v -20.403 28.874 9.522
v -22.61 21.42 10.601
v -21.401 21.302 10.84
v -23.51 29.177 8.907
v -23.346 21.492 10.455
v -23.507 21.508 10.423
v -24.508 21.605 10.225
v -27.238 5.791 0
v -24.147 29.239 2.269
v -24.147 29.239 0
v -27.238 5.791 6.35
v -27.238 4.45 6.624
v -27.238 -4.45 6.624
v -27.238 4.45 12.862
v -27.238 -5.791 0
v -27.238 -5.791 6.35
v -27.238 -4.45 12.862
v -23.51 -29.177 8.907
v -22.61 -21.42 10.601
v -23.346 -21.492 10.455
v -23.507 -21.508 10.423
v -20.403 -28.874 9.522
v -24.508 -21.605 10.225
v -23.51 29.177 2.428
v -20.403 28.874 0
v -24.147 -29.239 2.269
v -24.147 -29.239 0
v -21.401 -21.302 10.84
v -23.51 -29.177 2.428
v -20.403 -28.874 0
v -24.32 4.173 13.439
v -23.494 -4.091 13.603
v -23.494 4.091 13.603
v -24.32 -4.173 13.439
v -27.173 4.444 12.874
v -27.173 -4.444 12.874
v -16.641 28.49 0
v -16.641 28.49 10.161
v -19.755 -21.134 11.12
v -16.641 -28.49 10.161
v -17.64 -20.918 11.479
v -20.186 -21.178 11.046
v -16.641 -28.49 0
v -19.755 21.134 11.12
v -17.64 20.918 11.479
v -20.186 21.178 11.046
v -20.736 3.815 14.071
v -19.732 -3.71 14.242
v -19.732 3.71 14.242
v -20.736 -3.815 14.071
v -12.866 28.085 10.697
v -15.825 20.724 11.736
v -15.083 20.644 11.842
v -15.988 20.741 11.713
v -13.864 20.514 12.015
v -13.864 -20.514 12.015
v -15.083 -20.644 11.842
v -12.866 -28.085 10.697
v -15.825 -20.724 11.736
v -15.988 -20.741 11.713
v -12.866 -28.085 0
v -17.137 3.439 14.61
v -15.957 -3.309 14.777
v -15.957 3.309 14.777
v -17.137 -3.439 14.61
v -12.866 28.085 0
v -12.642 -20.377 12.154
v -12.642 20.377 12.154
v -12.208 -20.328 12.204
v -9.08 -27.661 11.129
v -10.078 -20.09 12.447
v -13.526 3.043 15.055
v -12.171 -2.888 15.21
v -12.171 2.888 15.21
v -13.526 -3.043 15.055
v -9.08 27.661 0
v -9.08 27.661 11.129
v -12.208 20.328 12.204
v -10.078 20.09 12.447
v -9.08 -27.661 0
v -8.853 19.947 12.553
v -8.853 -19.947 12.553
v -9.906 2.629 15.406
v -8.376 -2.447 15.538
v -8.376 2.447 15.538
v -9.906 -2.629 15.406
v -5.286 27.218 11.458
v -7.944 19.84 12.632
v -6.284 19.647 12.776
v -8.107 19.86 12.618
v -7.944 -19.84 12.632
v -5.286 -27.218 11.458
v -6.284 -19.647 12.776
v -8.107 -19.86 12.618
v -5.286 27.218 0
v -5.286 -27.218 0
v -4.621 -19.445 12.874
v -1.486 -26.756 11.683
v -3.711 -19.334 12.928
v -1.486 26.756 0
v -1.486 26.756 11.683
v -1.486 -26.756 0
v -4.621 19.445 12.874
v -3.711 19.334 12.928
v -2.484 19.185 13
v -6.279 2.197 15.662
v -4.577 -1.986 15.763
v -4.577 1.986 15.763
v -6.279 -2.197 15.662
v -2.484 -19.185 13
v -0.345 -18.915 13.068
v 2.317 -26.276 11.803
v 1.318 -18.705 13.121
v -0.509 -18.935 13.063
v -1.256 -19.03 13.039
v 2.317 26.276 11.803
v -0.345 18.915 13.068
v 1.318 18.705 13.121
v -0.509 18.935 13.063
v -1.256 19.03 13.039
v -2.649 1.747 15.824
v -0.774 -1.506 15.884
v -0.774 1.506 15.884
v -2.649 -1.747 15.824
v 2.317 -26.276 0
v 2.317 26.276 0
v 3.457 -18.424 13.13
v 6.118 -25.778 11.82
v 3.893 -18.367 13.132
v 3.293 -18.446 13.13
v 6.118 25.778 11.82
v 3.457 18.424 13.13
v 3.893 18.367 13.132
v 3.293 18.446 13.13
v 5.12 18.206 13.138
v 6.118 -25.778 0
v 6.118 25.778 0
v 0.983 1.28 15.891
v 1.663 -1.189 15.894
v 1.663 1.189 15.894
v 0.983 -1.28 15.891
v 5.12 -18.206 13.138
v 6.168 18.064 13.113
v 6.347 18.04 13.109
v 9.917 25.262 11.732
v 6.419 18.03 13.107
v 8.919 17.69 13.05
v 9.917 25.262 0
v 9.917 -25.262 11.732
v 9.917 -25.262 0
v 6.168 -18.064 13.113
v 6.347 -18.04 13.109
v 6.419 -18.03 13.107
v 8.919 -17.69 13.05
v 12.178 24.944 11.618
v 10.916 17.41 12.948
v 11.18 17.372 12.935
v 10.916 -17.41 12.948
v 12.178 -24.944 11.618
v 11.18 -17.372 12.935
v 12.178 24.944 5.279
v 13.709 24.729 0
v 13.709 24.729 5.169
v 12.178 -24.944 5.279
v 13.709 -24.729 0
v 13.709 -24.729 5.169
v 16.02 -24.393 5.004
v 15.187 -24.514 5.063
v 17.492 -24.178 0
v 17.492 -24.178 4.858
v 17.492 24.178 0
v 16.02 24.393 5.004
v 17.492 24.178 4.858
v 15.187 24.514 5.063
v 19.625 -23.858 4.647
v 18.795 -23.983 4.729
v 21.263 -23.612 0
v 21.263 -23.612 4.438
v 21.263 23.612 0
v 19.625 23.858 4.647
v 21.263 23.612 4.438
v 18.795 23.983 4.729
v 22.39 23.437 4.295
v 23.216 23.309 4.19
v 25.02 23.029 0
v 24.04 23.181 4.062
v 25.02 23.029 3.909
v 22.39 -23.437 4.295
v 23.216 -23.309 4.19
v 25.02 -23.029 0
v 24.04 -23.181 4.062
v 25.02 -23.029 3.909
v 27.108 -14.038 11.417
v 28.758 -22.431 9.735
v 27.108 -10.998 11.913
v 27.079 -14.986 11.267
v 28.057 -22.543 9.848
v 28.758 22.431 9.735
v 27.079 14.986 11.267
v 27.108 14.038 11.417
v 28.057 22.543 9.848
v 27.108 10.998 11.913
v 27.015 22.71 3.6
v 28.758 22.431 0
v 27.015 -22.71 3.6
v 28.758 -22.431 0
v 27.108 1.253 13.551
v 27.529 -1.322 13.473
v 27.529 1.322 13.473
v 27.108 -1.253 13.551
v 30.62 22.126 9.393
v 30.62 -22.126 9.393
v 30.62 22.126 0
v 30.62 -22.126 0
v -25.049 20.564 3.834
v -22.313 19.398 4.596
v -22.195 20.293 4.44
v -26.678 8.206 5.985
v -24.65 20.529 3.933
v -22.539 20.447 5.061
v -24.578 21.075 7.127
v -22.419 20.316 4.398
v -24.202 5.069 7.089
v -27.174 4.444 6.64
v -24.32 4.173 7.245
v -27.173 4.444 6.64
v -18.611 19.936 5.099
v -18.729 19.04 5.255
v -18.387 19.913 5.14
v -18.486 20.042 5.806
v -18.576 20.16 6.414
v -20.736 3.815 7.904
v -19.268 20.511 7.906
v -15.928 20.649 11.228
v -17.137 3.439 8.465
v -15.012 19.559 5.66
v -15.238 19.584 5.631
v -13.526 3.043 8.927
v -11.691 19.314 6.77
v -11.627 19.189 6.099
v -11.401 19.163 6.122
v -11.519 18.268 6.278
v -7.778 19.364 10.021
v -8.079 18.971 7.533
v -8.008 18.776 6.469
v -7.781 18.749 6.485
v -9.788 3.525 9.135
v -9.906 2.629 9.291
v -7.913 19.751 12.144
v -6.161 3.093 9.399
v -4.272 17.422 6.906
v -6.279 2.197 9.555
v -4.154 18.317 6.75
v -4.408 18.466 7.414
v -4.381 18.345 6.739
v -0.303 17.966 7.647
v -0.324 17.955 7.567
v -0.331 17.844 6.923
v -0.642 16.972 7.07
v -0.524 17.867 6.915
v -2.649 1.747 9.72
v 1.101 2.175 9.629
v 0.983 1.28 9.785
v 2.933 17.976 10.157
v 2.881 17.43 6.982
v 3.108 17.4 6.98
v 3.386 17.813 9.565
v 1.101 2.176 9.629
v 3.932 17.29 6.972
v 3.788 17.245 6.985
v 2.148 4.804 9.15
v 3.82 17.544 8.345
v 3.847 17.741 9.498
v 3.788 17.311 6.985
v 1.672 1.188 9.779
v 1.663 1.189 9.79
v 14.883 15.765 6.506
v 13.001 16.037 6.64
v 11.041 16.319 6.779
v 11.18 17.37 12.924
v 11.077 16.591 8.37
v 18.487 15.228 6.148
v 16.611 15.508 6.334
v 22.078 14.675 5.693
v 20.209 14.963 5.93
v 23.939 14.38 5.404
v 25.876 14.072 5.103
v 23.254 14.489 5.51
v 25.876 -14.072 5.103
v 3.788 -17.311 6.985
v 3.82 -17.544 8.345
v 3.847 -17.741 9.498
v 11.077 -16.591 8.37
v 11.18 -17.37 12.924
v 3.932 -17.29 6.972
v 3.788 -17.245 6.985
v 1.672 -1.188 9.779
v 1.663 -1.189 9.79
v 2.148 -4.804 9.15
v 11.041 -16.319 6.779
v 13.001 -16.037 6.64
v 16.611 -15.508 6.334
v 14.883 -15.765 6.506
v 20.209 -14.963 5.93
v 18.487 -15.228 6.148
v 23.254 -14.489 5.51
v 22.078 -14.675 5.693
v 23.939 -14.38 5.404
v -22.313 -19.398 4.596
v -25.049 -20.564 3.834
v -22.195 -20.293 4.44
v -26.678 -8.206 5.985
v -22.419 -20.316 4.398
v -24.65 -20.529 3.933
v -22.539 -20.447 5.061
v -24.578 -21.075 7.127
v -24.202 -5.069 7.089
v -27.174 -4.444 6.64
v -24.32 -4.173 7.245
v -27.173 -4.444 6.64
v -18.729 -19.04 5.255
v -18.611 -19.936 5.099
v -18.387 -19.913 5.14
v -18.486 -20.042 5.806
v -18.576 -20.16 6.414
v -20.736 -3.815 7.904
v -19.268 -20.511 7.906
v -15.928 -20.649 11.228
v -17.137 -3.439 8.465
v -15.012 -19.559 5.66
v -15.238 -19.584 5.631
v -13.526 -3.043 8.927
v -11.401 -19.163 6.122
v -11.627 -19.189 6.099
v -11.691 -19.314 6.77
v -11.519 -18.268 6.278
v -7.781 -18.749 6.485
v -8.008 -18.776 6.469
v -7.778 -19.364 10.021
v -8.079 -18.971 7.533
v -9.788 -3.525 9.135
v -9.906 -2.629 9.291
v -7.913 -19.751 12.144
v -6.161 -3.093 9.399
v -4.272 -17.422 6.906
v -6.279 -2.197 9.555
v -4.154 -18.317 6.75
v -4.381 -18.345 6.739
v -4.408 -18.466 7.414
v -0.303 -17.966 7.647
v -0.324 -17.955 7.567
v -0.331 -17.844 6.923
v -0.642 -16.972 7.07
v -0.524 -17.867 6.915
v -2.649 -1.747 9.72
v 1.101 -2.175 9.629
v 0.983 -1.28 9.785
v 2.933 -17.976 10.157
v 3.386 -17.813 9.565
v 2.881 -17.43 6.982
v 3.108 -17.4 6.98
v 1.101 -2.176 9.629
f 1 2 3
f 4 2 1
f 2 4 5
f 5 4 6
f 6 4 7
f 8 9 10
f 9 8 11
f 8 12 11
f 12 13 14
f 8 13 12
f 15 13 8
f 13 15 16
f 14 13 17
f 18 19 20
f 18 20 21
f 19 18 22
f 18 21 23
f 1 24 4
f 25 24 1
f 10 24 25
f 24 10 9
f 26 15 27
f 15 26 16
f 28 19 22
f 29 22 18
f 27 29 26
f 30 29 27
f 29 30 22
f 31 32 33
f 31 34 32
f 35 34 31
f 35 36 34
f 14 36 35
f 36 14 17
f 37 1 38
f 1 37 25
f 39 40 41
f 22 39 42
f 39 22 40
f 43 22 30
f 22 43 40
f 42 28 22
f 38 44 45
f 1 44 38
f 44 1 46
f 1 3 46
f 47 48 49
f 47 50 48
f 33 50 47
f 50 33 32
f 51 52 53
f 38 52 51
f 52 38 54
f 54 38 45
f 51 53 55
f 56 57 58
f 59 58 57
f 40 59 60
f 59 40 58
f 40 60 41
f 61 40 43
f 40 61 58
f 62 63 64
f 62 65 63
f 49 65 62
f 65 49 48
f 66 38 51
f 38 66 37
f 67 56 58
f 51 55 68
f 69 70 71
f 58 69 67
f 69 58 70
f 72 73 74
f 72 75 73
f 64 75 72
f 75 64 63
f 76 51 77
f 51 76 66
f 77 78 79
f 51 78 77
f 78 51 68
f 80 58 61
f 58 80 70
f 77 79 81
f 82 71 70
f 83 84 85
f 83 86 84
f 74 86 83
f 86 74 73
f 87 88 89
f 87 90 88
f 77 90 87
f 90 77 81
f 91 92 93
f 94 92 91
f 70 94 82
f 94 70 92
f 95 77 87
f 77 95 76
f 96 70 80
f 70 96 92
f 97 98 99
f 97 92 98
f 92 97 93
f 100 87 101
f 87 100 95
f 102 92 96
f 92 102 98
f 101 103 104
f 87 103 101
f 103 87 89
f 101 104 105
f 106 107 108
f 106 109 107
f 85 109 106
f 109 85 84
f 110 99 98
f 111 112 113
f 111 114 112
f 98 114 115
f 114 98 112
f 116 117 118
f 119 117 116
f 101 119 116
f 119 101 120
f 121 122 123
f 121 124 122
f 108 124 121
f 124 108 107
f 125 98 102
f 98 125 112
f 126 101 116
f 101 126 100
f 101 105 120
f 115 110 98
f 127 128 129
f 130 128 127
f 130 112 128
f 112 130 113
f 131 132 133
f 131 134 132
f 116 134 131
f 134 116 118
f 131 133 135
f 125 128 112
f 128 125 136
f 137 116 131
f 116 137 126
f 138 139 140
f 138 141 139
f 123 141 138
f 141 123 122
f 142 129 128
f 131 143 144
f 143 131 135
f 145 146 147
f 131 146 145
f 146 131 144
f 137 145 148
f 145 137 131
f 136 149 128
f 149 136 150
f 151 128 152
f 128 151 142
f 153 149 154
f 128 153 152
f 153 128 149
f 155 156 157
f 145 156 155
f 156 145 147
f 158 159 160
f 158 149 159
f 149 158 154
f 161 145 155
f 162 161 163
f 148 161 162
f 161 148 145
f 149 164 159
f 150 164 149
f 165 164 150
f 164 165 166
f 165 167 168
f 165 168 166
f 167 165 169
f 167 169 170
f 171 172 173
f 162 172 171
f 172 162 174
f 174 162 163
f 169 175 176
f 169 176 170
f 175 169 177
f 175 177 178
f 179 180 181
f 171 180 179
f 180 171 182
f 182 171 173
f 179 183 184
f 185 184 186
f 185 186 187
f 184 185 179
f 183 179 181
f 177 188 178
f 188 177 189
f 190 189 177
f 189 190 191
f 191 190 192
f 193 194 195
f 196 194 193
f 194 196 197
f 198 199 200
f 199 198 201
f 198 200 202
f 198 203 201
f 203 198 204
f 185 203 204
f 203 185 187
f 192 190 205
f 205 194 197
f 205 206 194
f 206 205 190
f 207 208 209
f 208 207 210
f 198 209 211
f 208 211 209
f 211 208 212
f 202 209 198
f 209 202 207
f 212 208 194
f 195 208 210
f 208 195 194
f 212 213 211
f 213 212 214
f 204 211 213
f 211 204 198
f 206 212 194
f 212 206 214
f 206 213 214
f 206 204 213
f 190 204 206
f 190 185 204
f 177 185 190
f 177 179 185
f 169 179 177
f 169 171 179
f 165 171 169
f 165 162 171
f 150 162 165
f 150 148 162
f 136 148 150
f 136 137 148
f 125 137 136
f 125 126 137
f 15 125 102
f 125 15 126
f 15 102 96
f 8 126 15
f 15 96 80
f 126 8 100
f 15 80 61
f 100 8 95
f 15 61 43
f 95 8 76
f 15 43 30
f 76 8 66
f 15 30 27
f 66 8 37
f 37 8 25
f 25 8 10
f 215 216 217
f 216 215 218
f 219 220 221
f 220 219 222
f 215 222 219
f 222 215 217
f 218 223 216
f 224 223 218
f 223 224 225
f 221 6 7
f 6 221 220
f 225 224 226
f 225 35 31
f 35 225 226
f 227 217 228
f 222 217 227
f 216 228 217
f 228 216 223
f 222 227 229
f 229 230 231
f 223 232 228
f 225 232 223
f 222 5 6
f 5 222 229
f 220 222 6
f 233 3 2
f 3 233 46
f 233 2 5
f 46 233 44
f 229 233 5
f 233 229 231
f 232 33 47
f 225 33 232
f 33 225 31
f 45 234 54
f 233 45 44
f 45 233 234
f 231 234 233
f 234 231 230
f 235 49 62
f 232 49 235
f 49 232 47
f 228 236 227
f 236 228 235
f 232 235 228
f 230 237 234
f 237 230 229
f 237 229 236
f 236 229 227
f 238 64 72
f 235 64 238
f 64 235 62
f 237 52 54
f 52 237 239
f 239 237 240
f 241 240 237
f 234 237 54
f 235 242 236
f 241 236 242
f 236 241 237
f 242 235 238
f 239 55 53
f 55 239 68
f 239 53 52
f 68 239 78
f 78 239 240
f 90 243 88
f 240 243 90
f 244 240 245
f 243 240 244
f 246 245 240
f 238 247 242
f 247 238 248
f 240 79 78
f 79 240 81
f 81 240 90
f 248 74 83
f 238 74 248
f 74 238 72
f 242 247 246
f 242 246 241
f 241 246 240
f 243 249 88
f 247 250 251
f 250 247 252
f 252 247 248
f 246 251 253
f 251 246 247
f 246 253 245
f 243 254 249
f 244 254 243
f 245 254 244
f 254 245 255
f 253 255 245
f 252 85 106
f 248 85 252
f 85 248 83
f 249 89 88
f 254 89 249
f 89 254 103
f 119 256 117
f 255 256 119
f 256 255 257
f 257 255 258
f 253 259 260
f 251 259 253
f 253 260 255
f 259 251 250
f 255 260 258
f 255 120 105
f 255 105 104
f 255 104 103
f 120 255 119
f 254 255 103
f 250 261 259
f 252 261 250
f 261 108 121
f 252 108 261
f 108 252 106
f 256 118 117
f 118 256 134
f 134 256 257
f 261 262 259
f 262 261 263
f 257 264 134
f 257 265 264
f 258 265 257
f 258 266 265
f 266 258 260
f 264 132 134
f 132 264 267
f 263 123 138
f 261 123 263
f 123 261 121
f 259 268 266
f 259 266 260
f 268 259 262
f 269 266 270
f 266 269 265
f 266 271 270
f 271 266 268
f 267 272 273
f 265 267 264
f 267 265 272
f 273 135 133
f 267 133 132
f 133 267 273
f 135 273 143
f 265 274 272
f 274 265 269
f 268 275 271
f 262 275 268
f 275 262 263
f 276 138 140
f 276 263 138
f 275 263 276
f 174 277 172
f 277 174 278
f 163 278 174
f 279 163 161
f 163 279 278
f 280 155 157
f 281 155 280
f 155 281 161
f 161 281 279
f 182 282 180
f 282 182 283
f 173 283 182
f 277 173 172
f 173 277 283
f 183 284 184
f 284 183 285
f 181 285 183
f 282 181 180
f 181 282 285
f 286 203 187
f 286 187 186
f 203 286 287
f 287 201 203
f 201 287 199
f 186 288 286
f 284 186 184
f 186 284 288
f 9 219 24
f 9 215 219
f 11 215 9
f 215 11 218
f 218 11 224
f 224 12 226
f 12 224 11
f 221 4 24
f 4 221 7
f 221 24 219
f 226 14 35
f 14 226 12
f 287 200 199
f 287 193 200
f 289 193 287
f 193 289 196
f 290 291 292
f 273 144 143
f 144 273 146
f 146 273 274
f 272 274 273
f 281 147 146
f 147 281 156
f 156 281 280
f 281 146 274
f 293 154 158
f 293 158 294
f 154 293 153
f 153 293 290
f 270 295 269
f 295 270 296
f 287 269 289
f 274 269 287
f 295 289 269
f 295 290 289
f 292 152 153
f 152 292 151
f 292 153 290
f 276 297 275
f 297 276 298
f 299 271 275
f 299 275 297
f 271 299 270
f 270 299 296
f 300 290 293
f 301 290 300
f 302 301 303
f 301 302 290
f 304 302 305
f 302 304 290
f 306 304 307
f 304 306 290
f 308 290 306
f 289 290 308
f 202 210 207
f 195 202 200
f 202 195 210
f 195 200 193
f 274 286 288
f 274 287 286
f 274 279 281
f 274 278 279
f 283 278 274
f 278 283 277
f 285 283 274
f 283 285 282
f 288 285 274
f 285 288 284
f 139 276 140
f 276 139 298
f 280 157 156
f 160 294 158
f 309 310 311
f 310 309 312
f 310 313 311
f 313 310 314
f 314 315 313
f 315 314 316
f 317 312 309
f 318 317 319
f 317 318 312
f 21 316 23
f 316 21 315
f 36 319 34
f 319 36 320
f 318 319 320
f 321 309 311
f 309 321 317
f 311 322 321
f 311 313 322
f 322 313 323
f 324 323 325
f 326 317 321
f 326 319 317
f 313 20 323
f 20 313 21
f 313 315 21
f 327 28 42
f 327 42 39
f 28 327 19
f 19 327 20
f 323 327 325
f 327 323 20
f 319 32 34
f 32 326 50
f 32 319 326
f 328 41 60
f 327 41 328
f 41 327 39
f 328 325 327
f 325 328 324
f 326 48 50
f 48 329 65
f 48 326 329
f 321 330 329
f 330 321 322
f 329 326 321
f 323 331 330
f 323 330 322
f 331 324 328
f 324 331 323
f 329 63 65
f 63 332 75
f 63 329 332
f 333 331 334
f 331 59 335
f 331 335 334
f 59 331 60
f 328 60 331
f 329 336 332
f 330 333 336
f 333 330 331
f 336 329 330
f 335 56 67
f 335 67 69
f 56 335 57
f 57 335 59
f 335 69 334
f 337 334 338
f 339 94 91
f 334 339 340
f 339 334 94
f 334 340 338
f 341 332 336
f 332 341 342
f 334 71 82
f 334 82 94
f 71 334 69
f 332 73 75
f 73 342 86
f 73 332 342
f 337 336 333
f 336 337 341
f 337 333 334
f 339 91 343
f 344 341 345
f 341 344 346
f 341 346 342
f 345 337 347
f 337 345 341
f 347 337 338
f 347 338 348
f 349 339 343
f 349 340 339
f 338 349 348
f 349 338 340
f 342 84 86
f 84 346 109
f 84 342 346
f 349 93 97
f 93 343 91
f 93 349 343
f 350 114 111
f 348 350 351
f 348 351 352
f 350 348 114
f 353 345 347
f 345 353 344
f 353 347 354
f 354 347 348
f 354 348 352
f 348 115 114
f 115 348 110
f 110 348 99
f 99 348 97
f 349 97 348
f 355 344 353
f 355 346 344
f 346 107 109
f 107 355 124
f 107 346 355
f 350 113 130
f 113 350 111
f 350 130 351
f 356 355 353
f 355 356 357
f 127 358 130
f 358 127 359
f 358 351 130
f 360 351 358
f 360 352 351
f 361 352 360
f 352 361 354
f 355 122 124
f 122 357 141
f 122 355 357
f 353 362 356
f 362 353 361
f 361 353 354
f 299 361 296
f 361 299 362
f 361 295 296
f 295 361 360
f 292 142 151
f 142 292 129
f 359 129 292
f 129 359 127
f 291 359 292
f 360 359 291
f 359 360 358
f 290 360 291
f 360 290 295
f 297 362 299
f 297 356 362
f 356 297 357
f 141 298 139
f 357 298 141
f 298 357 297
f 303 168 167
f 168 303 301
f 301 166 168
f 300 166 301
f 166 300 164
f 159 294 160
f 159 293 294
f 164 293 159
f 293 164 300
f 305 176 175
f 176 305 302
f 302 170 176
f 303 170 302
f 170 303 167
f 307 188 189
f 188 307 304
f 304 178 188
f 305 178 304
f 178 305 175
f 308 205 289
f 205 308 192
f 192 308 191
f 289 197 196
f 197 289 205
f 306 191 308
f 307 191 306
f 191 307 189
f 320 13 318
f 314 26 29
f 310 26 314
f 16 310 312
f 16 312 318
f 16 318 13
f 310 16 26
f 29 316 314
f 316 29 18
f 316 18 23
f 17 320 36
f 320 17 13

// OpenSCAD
// file: panel_mount.scad
// Mount for the two curved 128x64 HUB75 panels of the mask.
//
// One part per panel, the same STL printed twice (the lower half is the upper
// one rotated 180 degrees). Each half is a lightweight curved frame with pockets
// for stacks of disc magnets that match the 12 magnets on the panel back, and an
// opening for the power/data connectors.
//
// Geometry: each panel is bent around its short (y) axis to radius R. The upper
// panel is tilted top-back and the lower one bottom-back about the x axis, so
// they touch at their outer corners and leave an eye slit that is eye_gap wide
// in the middle. Near the outer corners both halves carry a bridge with a flat
// face in the joint plane; glue the two halves together there (optional
// filament dowels) and the angle between them is fixed.
//
// Coordinates (assembly): x = right, y = up, z = forward (away from the face).
// The panel cylinder axis is the y axis; the joint plane between halves is y = 0.
//
// Usage:
//   openscad -o panel_mount_half.stl panel_mount.scad                (print part)
//   openscad -D 'mode="assembly"' -o assembly.png panel_mount.scad   (preview)

mode = "print";            // "print" | "half" | "assembly" | "collision"

// ---- panel ---------------------------------------------------------------
W = 240;                   // panel size along the curved (x) axis
H = 120;                   // panel size along the straight (y) axis
R = 145;                   // bend radius of the panel PCB
standoff = 5;              // PCB to contact face of the panel's magnets (measure!)
eye_gap = 20;              // slit width between the panels at the centre (x = 0)

magnets = [[-113, 53], [-60, 53], [0, 53], [60, 53], [113, 53],
           [-113, 0], [113, 0],
           [-113, -53], [-60, -53], [0, -53], [60, -53], [113, -53]];
conn = [60, 30];           // connector opening (x, y), centred on the panel

// ---- own magnets (stack of 3 discs, 10 x 1.8 mm) ---------------------------
pocket_d = 10.4;           // hole for 10 mm magnets incl. FDM shrink and glue
pocket_depth = 5.2;        // 3 x 1.8 = 5.4 -> magnets stand 0.2 mm proud

// ---- frame ----------------------------------------------------------------
depth = 7;                 // radial thickness of frame and bosses
recess = 1;                // frame front sits this far behind the magnet faces
bar = 16;                  // width of the outer frame bars
ring = 6;                  // wall width around the connector opening
rib = 8;                   // width of the inner ribs
boss_d = 16;               // raised pad around every magnet pocket
bridge_u = 96;             // bridges between the halves span |x| = bridge_u .. W/2
dowel_d = 2.0;             // hole for a piece of 1.75 mm filament
dowel_depth = 8;
dowel_u = 101;

$fa = 1;
$fs = 0.5;

// ---- derived --------------------------------------------------------------
Rc = R - standoff;         // radius of the magnet contact face
rb = Rc - depth;           // back of the frame
rf = Rc - recess;          // front of the frame
phi_max = (W / 2) / R * 180 / PI;
zc = R * cos(phi_max);     // hinge line (outer corners) lies at y = 0, z = zc
theta = asin(eye_gap / 2 / (R - zc));

function a(u) = u / R * 180 / PI;   // arc length on the PCB -> angle

echo(str("tilt per panel = ", theta, " deg, hinge z = ", zc));

// ---- panel-local building blocks -------------------------------------------
// Built with the cylinder axis on Z ("cyl frame"); to_local() maps it to the
// panel-local frame (axis on y, panel centre at (0, 0, R)).
module to_local() multmatrix([[0, 1, 0, 0], [0, 0, 1, 0], [1, 0, 0, 0], [0, 0, 0, 1]]) children();

// Cylindrical box: arc range u0..u1 (measured on the PCB), height v0..v1,
// radius r0..r1.
module cbox(u0, u1, v0, v1, r0, r1)
    rotate([0, 0, a(u0)]) rotate_extrude(angle = a(u1) - a(u0))
        translate([r0, v0]) square([r1 - r0, v1 - v0]);

// Radial cylinder at (u, v) from radius r0 to r1.
module rcyl(u, v, r0, r1, dia)
    rotate([0, 0, a(u)]) translate([r0, 0, v]) rotate([0, 90, 0]) cylinder(h = r1 - r0, d = dia);

module frame_solid() {
    intersection() {
        cbox(-W / 2, W / 2, -H / 2, H / 2, rb - 1, Rc + 1);   // clip to panel outline
        union() {
            // outer frame (all magnets sit on it)
            cbox(-W / 2, W / 2, H / 2 - bar, H / 2, rb, rf);
            cbox(-W / 2, W / 2, -H / 2, -H / 2 + bar, rb, rf);
            cbox(W / 2 - bar, W / 2, -H / 2, H / 2, rb, rf);
            cbox(-W / 2, -W / 2 + bar, -H / 2, H / 2, rb, rf);
            // ring around the connector opening
            cbox(-conn[0] / 2 - ring, conn[0] / 2 + ring, -conn[1] / 2 - ring, conn[1] / 2 + ring, rb, rf);
            // ribs: centre top/bottom, horizontal to the sides, verticals at x = +-60
            cbox(-rib / 2, rib / 2, -H / 2, H / 2, rb, rf);
            cbox(-W / 2, W / 2, -rib / 2, rib / 2, rb, rf);
            for (s = [-1, 1]) cbox(s * 60 - rib / 2, s * 60 + rib / 2, -H / 2, H / 2, rb, rf);
            for (m = magnets) rcyl(m[0], m[1], rb, Rc, boss_d);
        }
    }
}

module frame_cuts() {
    for (m = magnets) rcyl(m[0], m[1], Rc - pocket_depth, Rc + 1, pocket_d);
    cbox(-conn[0] / 2, conn[0] / 2, -conn[1] / 2, conn[1] / 2, rb - 1, Rc + 1);
}

// ---- assembly transforms ---------------------------------------------------
// Upper panel: bottom edge on y = 0, then tilted top-back about the hinge line.
module to_upper()
    translate([0, 0, zc]) rotate([-theta, 0, 0]) translate([0, 0, -zc]) translate([0, H / 2, 0]) children();
module from_upper()
    translate([0, -H / 2, 0]) translate([0, 0, zc]) rotate([theta, 0, 0]) translate([0, 0, -zc]) children();

module end_piece(s)
    to_local() if (s > 0) cbox(bridge_u, W / 2, -H / 2, -H / 2 + bar, rb, rf);
               else       cbox(-W / 2, -bridge_u, -H / 2, -H / 2 + bar, rb, rf);

module bridges()
    for (s = [-1, 1]) hull() {
        to_upper() end_piece(s);
        mirror([0, 1, 0]) to_upper() end_piece(s);
    }

module dowel_holes()
    for (s = [-1, 1]) {
        r = (rb + rf) / 2;
        x0 = s * r * sin(a(dowel_u));
        z0 = zc + (r * cos(a(dowel_u)) - zc) * cos(theta);
        translate([x0, -1, z0]) rotate([-90, 0, 0]) cylinder(h = dowel_depth + 1, d = dowel_d);
    }

// Upper half in assembly coordinates; the lower half is mirror([0, 1, 0]) of it.
module half_global()
    difference() {
        intersection() {
            union() {
                to_upper() to_local() frame_solid();
                bridges();
            }
            translate([-200, 0, -100]) cube([400, 300, 400]);
        }
        to_upper() to_local() frame_cuts();
        dowel_holes();
    }

module panel_ghost()
    to_local() difference() {
        union() {
            cbox(-W / 2, W / 2, -H / 2, H / 2, R, R + 2);
            for (m = magnets) rcyl(m[0], m[1], Rc + 0.01, R, 10);
        }
        cbox(-conn[0] / 2 + 5, conn[0] / 2 - 5, -conn[1] / 2 + 5, conn[1] / 2 - 5, R - 1, R + 3);
    }

if (mode == "print") {
    // top edge of the panel on the bed, eye-slit edge up
    translate([0, 0, H / 2]) rotate([-90, 0, 0]) from_upper() half_global();
} else if (mode == "half") {
    half_global();
} else if (mode == "assembly") {
    color("orange") half_global();
    color("gold") mirror([0, 1, 0]) half_global();
    color("dimgray", 0.6) to_upper() panel_ghost();
    color("dimgray", 0.6) mirror([0, 1, 0]) to_upper() panel_ghost();
} else if (mode == "collision") {
    // must be empty: mount vs. both panels
    intersection() {
        union() { half_global(); mirror([0, 1, 0]) half_global(); }
        union() { to_upper() panel_ghost(); mirror([0, 1, 0]) to_upper() panel_ghost(); }
    }
}
// main file
// Brackets that join the two printed panel-mount halves at the outer ends of the
// eye slit, replacing the small glue faces of panel_mount.scad.
//
// Each bracket sits behind the slit-side bars of both halves, from the vertical
// rib at x = +-60 to the outer end. The bars drop into two pockets that are an
// exact imprint of them (plus clearance cl): a back plate behind both bars, a lip
// over each bar's inner edge, a tongue filling the slit between the bars, and a
// cap around the outer end. Pushed on from behind it sets the angle between the
// halves; glue it in for strength (the fit holds everything while the glue cures).
//
// The pocket is the bars' shadow along one insertion direction, so the bracket
// slides straight on, and it prints with its flat back on the bed without supports.
// Both brackets are the same part (the left one is the right one turned 180 deg).
//
// Usage:
//   openscad -o joint_bracket.stl joint_bracket.scad                  (print 2x)
//   openscad -D 'part="check_halves"' -o x.stl joint_bracket.scad     (must be empty)
//   openscad -D 'part="check_panels"' -o x.stl joint_bracket.scad     (must be empty)

include <panel_mount.scad>
mode = "none";             // silence panel_mount.scad's own output

part = "print";            // "print" | "assembly" | "check_halves" | "check_panels" | "check_slide"

cl = 0.25;                 // clearance per side between bracket and bars
lip = 8;                   // how far the lips reach over the bars' inner edges
back_t = 3;                // minimum thickness of the back plate
cap = 3;                   // wall around the outer end of the bars
bracket_u0 = 65;           // inner end of the bracket (vertical rib ends at 64)
du = 4;                    // slice width for the convex pieces
L = 60;                    // sweep length for the insertion shadow
slide = 0;                 // check_slide: bracket pulled back by this much

// insertion direction: radial at the bracket's centre, in the joint plane
phi_b = a((bracket_u0 + W / 2 + cap) / 2);
module to_ins() rotate([0, -phi_b, 0]) children();     // insertion direction -> +z
module from_ins() rotate([0, phi_b, 0]) children();

// upper-panel-local (u, v, r) -> assembly coordinates (same as to_upper() to_local())
function gl(u, v, r) = let(y = v + H / 2, z = r * cos(a(u)) - zc)
    [r * sin(a(u)), y * cos(theta) + z * sin(theta), zc + z * cos(theta) - y * sin(theta)];
function ins_z(p) = p[0] * sin(phi_b) + p[2] * cos(phi_b);

v_lip = -H / 2 + bar + lip;
u_end = W / 2 + cap;
z_back = min([for (u = [bracket_u0 : 1 : u_end], v = [-H / 2, v_lip]) ins_z(gl(u, v, rb))]) - back_t;

// convex piece swept along the insertion direction (in insertion frame): the body
// backwards (gives the back plate), the bars forwards (space they slide in through)
module swept_back() hull() { children(); translate([0, 0, -L]) children(); }
module swept_fwd() hull() { children(); translate([0, 0, L]) children(); }

module upper(u0, u1, v0, v1, r0, r1) to_upper() to_local() cbox(u0, u1, v0, v1, r0, r1);

module body_ins()
    intersection() {
        union() for (u = [bracket_u0 : du : u_end - 0.001]) {
            u1 = min(u + du, u_end);
            swept_back() to_ins() {
                upper(u, u1, -H / 2, v_lip, rb, rf);
                mirror([0, 1, 0]) upper(u, u1, -H / 2, v_lip, rb, rf);
            }
        }
        translate([-500, -500, z_back]) cube(1000);
    }

// Upper half's solid parts near the slit end, grown by cl (each piece convex).
module boss_clipped(m)
    to_upper() to_local() intersection() {
        rcyl(m[0], m[1], rb - cl, Rc + cl, boss_d + 2 * cl);
        rotate([0, 0, a(W / 2 + cl)]) translate([-500, -1000, -500]) cube(1000);  // u <= W/2 + cl
        translate([-500, -500, -H / 2 - cl]) cube(1000);                            // v >= -H/2 - cl
    }

module cavity_ins()
    for (m = [0, 1]) mirror([0, m, 0]) {
        for (u = [bracket_u0 - 6 : du : W / 2 - 0.001])
            swept_fwd() to_ins() upper(u - cl, min(u + du, W / 2) + cl, -H / 2 - cl, -H / 2 + bar + cl, rb - cl, rf + cl);
        for (u = [W / 2 - bar : du : W / 2 - 0.001])
            swept_fwd() to_ins() upper(u - cl, u + du + cl, -H / 2 - cl, v_lip + 10, rb - cl, rf + cl);
        // vertical rib at x = 60 (the back plate reaches behind it)
        swept_fwd() to_ins() upper(60 - rib / 2 - cl, 60 + rib / 2 + cl, -H / 2 - cl, v_lip + 10, rb - cl, rf + cl);
        for (mg = magnets) if (mg[1] < 0 && mg[0] > bracket_u0 - boss_d) swept_fwd() to_ins() boss_clipped(mg);
        swept_fwd() to_ins() hull() {
            upper(bridge_u - cl, W / 2 + cl, -H / 2 - cl, -H / 2 + bar + cl, rb - cl, rf + cl);
            mirror([0, 1, 0]) upper(bridge_u - cl, W / 2 + cl, -H / 2 - cl, -H / 2 + bar + cl, rb - cl, rf + cl);
        }
    }

module bracket_ins() difference() { body_ins(); cavity_ins(); }

// both brackets in assembly coordinates
module brackets() {
    from_ins() bracket_ins();
    mirror([1, 0, 0]) from_ins() bracket_ins();   // = the same part turned 180 deg about z
}

module halves() { half_global(); mirror([0, 1, 0]) half_global(); }

if (part == "print") {
    translate([0, 0, -z_back]) bracket_ins();
} else if (part == "assembly") {
    color("orange") half_global();
    color("gold") mirror([0, 1, 0]) half_global();
    color("steelblue") brackets();
} else if (part == "check_halves") {
    intersection() { brackets(); halves(); }
} else if (part == "check_panels") {
    intersection() { brackets(); union() { to_upper() panel_ghost(); mirror([0, 1, 0]) to_upper() panel_ghost(); } }
} else if (part == "check_slide") {
    intersection() { from_ins() translate([0, 0, -slide]) bracket_ins(); halves(); }
}
